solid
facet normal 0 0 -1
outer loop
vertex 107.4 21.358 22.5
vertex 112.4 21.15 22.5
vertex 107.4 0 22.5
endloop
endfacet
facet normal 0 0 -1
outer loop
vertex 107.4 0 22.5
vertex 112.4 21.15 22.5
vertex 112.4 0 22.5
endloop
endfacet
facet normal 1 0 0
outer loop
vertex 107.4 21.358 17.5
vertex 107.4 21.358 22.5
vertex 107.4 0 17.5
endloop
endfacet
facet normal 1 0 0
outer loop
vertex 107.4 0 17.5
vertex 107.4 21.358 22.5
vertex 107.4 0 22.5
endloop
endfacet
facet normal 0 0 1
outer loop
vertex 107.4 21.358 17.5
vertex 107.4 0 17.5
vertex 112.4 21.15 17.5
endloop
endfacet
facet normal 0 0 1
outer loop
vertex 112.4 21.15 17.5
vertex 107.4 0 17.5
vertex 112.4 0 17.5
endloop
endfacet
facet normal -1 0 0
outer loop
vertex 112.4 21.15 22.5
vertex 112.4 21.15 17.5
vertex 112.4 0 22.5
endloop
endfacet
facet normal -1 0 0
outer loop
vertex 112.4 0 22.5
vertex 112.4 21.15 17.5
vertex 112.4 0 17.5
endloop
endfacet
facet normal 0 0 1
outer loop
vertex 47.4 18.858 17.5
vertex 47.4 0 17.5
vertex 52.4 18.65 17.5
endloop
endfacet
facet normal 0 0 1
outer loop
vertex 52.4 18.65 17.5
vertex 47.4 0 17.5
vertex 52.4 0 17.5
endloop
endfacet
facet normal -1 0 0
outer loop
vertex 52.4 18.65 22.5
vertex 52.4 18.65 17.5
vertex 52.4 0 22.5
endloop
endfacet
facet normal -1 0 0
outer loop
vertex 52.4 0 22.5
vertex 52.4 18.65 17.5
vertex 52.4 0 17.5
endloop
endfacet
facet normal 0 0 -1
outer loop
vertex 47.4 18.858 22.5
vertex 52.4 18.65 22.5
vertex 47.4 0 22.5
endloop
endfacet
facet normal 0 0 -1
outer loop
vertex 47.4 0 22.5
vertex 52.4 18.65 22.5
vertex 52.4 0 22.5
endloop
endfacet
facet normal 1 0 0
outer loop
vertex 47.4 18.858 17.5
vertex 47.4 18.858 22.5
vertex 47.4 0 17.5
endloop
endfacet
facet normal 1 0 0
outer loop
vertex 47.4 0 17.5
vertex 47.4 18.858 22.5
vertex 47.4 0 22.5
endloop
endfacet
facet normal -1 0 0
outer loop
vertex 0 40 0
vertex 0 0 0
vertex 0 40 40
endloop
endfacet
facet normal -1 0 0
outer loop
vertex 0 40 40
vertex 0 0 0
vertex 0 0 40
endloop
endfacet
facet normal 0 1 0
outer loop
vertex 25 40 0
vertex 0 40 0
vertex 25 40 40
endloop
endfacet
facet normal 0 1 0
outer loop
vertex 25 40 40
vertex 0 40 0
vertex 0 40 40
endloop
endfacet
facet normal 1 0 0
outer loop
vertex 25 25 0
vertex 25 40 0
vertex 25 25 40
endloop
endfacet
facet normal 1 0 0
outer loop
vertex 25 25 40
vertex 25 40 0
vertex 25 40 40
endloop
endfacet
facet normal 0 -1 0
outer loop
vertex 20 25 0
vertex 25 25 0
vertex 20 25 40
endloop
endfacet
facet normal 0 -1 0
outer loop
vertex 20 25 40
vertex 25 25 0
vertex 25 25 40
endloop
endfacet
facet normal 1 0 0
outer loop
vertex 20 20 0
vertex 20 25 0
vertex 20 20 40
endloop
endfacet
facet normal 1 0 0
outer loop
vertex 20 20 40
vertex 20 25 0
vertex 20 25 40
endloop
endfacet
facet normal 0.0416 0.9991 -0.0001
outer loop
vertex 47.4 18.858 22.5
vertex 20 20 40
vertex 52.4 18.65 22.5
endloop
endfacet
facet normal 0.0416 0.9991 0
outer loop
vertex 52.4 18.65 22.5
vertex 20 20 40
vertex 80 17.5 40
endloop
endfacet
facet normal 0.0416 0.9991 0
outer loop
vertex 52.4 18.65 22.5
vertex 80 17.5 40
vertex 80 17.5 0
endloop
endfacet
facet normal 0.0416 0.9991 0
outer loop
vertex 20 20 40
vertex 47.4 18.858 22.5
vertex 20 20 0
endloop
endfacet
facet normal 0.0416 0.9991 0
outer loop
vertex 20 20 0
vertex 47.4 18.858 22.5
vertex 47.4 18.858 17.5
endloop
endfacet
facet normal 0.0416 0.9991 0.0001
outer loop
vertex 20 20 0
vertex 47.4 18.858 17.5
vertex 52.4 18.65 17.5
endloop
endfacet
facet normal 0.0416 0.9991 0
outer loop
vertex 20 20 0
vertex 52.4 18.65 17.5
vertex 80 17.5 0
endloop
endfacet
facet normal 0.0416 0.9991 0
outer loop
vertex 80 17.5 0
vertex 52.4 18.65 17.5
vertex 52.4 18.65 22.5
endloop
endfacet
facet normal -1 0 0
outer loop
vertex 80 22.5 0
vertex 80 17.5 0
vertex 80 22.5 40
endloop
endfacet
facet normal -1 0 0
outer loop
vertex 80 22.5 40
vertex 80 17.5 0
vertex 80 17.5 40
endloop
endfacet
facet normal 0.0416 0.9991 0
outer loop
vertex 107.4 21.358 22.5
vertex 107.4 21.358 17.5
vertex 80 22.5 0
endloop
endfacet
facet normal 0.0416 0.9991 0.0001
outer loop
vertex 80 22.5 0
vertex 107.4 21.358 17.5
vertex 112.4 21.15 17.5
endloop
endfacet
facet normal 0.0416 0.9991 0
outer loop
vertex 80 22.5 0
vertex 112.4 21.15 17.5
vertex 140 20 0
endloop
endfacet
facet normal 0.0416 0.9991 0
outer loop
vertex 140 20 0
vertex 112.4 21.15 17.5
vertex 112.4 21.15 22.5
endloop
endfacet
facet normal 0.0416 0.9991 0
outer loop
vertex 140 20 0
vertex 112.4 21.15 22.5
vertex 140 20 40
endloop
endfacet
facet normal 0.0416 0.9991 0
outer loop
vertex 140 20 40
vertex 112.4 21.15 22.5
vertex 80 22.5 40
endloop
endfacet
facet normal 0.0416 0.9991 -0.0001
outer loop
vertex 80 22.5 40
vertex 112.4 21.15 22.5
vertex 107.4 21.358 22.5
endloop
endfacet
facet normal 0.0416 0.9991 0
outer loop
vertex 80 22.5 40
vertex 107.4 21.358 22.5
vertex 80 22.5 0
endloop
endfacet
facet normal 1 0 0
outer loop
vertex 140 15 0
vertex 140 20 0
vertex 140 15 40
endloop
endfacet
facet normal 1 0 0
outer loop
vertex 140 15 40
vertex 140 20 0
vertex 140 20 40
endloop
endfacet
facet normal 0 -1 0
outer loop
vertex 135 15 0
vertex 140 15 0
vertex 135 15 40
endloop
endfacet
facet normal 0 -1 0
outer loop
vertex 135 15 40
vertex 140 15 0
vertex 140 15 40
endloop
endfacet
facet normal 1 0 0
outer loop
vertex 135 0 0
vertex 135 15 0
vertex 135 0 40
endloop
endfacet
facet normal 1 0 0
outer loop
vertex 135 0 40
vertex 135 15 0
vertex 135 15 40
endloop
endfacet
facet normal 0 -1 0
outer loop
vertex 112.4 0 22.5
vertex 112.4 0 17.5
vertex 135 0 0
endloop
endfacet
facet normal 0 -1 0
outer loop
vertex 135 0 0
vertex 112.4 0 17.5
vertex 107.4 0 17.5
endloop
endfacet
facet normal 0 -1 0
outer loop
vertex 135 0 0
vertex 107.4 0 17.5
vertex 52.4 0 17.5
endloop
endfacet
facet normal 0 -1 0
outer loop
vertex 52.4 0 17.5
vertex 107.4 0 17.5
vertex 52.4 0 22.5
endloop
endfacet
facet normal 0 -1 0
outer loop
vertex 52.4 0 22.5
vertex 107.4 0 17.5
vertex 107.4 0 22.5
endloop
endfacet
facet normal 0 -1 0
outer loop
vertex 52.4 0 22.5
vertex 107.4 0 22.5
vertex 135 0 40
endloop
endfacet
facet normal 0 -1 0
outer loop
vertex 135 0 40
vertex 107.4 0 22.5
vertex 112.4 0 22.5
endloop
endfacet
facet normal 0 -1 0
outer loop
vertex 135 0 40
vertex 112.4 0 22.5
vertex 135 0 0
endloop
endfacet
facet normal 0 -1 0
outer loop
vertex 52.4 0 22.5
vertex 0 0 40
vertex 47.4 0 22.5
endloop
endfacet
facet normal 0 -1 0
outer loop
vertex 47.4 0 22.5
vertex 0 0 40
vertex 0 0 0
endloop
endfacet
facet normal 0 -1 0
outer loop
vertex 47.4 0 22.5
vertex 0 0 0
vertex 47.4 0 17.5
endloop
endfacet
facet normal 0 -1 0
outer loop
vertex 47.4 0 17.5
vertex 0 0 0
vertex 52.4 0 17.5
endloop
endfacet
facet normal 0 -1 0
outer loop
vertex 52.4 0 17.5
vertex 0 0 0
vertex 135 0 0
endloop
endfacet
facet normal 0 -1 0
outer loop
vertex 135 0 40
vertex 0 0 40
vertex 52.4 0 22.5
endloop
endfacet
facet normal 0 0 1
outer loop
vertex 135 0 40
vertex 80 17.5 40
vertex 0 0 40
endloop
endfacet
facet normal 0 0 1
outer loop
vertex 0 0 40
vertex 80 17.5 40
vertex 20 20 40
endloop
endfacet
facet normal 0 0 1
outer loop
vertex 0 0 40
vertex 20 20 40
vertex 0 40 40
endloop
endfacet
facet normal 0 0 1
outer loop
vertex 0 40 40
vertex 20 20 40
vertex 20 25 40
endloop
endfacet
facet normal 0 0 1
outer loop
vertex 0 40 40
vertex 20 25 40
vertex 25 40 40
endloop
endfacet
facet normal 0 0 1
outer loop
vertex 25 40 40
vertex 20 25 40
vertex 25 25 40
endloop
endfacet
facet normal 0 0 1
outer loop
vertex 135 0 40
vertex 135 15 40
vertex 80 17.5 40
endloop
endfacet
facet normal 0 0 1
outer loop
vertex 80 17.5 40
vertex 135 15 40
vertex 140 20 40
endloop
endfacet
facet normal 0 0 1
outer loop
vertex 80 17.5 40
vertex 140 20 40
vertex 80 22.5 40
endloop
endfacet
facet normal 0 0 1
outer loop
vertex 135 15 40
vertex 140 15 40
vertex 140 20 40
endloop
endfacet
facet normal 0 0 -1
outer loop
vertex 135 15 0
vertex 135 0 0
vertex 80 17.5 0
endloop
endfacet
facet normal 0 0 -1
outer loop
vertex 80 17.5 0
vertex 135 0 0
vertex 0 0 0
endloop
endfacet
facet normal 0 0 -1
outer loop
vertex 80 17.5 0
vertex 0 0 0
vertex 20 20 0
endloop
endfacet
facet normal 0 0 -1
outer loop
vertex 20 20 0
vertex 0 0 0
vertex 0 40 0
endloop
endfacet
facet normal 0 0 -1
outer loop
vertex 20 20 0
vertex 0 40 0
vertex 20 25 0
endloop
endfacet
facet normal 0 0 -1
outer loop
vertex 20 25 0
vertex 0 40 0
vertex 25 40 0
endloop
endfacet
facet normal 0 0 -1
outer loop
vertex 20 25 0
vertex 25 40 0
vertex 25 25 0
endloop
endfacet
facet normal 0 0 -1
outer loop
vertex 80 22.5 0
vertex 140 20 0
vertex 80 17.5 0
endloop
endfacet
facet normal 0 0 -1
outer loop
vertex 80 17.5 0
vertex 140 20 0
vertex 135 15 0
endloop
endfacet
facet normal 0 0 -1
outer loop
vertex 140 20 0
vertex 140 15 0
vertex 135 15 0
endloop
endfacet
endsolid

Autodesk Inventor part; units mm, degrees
ref_plane "YZ Plane" through (0, 0, 0) normal (1, 0, 0) x (0, 1, 0)
ref_plane "XZ Plane" through (0, 0, 0) normal (0, 1, 0) x (-1, 0, 0)
ref_plane "XY Plane" through (0, 0, 0) normal (0, 0, 1) x (1, 0, 0)
sketch "Boceto1" plane through (0, 0, 0) normal (0, 0, 1) x (1, 0, 0)
  line L0 (0, 0) -> (135, 0)
  line L1 (0, 0) -> (0, 40)
  line L2 (0, 40) -> (25, 40)
  line L3 (25, 40) -> (25, 25)
  line L4 (25, 25) -> (20, 25)
  line L5 (20, 25) -> (20, 20)
  line L6 (20, 20) -> (140, 20) construction
  line L7 (135, 0) -> (135, 15) construction
  line L8 (135, 0) -> (135, 15)
  line L9 (135, 15) -> (140, 15)
  line L10 (140, 15) -> (140, 20)
  line L11 (20, 20) -> (80, 20) construction
  line L12 (80, 20) -> (80, 22.5) construction
  line L13 (80, 22.5) -> (80, 17.5) construction
  line L14 (20, 20) -> (80, 17.5)
  line L15 (80, 17.5) -> (80, 22.5)
  line L16 (80, 22.5) -> (140, 20)
  dimension "d0" = 135
  dimension "d1" = 40
  dimension "d2" = 25
  dimension "d3" = 15
  dimension "d4" = 5
  dimension "d5" = 5
  dimension "d6" = 120
  dimension "d7" = 15
  dimension "d9" = 5
  dimension "d10" = 60
  dimension "d11" = 2.5
  dimension "d12" = 5
extrude "Extrusión1" add sketch "Boceto1" along normal blind 40
sketch "Boceto2" plane through (0, 0, 0) normal (0, -1, 0) x (1, 0, 0)
  line L0 (0, 0) -> (79.9, 0)
  line L1 (25, 0) -> (0, 0) projected
  line L2 (79.9, 0) -> (79.9, 20)
  line L3 (0, 0) -> (135, 0) projected
  line L4 (79.9, 0) -> (99.9, 0) construction
  line L5 (79.9, 20) -> (49.9, 20)
  line L6 (80, 0) -> (80, 40) projected
  line L7 (79.9, 20) -> (109.9, 20) construction
  line L8 (79.9, 20) -> (109.9, 20)
  line L9 (79.9, 20) -> (109.9, 20) construction
  line L10 (47.4, 17.5) -> (52.4, 17.5)
  line L11 (52.4, 17.5) -> (52.4, 22.5)
  line L12 (52.4, 22.5) -> (47.4, 22.5)
  line L13 (47.4, 22.5) -> (47.4, 17.5)
  line L14 (47.4, 17.5) -> (52.4, 22.5) construction
  line L15 (52.4, 17.5) -> (47.4, 22.5) construction
  line L16 (107.4, 17.5) -> (112.4, 17.5)
  line L17 (112.4, 17.5) -> (112.4, 22.5)
  line L18 (112.4, 22.5) -> (107.4, 22.5)
  line L19 (107.4, 22.5) -> (107.4, 17.5)
  line L20 (107.4, 17.5) -> (112.4, 22.5) construction
  line L21 (112.4, 17.5) -> (107.4, 22.5) construction
  dimension "d15" = 79.9
  dimension "d16" = 20
  dimension "d17" = 90
  dimension "d18" = 30
  dimension "d19" = 180
  dimension "d20" = 30
  dimension "d21" = 0
  dimension "d22" = 5
  dimension "d23" = 5
  dimension "d24" = 5
  dimension "d25" = 5
extrude "Extrusión2" cut sketch "Boceto2" against normal blind 40 contours L11 L10 L13 L12 | L19 L18 L17 L16
equation "\"d3\" = Largo_rebaje - Correccion_rebaje"
equation "\"d4\" = Espesor_corte"
equation "\"d5\" = Espesor_corte"
equation "\"d9\" = Espesor_corte"
equation "\"d11\" = Espesor_detalle"
equation "\"d12\" = Espesor_corte"
equation "\"d15\" = Largo_segundo_boceto"
equation "\"d22\" = Espesor_corte"
equation "\"d23\" = Espesor_corte"
equation "\"d24\" = Espesor_corte"
equation "\"d25\" = Espesor_corte"
equation "\"Largo_rebaje\" = 20"
equation "\"Correccion_rebaje\" = 5"
equation "\"Espesor_corte\" = 5"
equation "\"Espesor_detalle\" = 2.5"
equation "\"Largo_segundo_boceto\" = 79.9"
properties part number "Hembra_parametrizada"
